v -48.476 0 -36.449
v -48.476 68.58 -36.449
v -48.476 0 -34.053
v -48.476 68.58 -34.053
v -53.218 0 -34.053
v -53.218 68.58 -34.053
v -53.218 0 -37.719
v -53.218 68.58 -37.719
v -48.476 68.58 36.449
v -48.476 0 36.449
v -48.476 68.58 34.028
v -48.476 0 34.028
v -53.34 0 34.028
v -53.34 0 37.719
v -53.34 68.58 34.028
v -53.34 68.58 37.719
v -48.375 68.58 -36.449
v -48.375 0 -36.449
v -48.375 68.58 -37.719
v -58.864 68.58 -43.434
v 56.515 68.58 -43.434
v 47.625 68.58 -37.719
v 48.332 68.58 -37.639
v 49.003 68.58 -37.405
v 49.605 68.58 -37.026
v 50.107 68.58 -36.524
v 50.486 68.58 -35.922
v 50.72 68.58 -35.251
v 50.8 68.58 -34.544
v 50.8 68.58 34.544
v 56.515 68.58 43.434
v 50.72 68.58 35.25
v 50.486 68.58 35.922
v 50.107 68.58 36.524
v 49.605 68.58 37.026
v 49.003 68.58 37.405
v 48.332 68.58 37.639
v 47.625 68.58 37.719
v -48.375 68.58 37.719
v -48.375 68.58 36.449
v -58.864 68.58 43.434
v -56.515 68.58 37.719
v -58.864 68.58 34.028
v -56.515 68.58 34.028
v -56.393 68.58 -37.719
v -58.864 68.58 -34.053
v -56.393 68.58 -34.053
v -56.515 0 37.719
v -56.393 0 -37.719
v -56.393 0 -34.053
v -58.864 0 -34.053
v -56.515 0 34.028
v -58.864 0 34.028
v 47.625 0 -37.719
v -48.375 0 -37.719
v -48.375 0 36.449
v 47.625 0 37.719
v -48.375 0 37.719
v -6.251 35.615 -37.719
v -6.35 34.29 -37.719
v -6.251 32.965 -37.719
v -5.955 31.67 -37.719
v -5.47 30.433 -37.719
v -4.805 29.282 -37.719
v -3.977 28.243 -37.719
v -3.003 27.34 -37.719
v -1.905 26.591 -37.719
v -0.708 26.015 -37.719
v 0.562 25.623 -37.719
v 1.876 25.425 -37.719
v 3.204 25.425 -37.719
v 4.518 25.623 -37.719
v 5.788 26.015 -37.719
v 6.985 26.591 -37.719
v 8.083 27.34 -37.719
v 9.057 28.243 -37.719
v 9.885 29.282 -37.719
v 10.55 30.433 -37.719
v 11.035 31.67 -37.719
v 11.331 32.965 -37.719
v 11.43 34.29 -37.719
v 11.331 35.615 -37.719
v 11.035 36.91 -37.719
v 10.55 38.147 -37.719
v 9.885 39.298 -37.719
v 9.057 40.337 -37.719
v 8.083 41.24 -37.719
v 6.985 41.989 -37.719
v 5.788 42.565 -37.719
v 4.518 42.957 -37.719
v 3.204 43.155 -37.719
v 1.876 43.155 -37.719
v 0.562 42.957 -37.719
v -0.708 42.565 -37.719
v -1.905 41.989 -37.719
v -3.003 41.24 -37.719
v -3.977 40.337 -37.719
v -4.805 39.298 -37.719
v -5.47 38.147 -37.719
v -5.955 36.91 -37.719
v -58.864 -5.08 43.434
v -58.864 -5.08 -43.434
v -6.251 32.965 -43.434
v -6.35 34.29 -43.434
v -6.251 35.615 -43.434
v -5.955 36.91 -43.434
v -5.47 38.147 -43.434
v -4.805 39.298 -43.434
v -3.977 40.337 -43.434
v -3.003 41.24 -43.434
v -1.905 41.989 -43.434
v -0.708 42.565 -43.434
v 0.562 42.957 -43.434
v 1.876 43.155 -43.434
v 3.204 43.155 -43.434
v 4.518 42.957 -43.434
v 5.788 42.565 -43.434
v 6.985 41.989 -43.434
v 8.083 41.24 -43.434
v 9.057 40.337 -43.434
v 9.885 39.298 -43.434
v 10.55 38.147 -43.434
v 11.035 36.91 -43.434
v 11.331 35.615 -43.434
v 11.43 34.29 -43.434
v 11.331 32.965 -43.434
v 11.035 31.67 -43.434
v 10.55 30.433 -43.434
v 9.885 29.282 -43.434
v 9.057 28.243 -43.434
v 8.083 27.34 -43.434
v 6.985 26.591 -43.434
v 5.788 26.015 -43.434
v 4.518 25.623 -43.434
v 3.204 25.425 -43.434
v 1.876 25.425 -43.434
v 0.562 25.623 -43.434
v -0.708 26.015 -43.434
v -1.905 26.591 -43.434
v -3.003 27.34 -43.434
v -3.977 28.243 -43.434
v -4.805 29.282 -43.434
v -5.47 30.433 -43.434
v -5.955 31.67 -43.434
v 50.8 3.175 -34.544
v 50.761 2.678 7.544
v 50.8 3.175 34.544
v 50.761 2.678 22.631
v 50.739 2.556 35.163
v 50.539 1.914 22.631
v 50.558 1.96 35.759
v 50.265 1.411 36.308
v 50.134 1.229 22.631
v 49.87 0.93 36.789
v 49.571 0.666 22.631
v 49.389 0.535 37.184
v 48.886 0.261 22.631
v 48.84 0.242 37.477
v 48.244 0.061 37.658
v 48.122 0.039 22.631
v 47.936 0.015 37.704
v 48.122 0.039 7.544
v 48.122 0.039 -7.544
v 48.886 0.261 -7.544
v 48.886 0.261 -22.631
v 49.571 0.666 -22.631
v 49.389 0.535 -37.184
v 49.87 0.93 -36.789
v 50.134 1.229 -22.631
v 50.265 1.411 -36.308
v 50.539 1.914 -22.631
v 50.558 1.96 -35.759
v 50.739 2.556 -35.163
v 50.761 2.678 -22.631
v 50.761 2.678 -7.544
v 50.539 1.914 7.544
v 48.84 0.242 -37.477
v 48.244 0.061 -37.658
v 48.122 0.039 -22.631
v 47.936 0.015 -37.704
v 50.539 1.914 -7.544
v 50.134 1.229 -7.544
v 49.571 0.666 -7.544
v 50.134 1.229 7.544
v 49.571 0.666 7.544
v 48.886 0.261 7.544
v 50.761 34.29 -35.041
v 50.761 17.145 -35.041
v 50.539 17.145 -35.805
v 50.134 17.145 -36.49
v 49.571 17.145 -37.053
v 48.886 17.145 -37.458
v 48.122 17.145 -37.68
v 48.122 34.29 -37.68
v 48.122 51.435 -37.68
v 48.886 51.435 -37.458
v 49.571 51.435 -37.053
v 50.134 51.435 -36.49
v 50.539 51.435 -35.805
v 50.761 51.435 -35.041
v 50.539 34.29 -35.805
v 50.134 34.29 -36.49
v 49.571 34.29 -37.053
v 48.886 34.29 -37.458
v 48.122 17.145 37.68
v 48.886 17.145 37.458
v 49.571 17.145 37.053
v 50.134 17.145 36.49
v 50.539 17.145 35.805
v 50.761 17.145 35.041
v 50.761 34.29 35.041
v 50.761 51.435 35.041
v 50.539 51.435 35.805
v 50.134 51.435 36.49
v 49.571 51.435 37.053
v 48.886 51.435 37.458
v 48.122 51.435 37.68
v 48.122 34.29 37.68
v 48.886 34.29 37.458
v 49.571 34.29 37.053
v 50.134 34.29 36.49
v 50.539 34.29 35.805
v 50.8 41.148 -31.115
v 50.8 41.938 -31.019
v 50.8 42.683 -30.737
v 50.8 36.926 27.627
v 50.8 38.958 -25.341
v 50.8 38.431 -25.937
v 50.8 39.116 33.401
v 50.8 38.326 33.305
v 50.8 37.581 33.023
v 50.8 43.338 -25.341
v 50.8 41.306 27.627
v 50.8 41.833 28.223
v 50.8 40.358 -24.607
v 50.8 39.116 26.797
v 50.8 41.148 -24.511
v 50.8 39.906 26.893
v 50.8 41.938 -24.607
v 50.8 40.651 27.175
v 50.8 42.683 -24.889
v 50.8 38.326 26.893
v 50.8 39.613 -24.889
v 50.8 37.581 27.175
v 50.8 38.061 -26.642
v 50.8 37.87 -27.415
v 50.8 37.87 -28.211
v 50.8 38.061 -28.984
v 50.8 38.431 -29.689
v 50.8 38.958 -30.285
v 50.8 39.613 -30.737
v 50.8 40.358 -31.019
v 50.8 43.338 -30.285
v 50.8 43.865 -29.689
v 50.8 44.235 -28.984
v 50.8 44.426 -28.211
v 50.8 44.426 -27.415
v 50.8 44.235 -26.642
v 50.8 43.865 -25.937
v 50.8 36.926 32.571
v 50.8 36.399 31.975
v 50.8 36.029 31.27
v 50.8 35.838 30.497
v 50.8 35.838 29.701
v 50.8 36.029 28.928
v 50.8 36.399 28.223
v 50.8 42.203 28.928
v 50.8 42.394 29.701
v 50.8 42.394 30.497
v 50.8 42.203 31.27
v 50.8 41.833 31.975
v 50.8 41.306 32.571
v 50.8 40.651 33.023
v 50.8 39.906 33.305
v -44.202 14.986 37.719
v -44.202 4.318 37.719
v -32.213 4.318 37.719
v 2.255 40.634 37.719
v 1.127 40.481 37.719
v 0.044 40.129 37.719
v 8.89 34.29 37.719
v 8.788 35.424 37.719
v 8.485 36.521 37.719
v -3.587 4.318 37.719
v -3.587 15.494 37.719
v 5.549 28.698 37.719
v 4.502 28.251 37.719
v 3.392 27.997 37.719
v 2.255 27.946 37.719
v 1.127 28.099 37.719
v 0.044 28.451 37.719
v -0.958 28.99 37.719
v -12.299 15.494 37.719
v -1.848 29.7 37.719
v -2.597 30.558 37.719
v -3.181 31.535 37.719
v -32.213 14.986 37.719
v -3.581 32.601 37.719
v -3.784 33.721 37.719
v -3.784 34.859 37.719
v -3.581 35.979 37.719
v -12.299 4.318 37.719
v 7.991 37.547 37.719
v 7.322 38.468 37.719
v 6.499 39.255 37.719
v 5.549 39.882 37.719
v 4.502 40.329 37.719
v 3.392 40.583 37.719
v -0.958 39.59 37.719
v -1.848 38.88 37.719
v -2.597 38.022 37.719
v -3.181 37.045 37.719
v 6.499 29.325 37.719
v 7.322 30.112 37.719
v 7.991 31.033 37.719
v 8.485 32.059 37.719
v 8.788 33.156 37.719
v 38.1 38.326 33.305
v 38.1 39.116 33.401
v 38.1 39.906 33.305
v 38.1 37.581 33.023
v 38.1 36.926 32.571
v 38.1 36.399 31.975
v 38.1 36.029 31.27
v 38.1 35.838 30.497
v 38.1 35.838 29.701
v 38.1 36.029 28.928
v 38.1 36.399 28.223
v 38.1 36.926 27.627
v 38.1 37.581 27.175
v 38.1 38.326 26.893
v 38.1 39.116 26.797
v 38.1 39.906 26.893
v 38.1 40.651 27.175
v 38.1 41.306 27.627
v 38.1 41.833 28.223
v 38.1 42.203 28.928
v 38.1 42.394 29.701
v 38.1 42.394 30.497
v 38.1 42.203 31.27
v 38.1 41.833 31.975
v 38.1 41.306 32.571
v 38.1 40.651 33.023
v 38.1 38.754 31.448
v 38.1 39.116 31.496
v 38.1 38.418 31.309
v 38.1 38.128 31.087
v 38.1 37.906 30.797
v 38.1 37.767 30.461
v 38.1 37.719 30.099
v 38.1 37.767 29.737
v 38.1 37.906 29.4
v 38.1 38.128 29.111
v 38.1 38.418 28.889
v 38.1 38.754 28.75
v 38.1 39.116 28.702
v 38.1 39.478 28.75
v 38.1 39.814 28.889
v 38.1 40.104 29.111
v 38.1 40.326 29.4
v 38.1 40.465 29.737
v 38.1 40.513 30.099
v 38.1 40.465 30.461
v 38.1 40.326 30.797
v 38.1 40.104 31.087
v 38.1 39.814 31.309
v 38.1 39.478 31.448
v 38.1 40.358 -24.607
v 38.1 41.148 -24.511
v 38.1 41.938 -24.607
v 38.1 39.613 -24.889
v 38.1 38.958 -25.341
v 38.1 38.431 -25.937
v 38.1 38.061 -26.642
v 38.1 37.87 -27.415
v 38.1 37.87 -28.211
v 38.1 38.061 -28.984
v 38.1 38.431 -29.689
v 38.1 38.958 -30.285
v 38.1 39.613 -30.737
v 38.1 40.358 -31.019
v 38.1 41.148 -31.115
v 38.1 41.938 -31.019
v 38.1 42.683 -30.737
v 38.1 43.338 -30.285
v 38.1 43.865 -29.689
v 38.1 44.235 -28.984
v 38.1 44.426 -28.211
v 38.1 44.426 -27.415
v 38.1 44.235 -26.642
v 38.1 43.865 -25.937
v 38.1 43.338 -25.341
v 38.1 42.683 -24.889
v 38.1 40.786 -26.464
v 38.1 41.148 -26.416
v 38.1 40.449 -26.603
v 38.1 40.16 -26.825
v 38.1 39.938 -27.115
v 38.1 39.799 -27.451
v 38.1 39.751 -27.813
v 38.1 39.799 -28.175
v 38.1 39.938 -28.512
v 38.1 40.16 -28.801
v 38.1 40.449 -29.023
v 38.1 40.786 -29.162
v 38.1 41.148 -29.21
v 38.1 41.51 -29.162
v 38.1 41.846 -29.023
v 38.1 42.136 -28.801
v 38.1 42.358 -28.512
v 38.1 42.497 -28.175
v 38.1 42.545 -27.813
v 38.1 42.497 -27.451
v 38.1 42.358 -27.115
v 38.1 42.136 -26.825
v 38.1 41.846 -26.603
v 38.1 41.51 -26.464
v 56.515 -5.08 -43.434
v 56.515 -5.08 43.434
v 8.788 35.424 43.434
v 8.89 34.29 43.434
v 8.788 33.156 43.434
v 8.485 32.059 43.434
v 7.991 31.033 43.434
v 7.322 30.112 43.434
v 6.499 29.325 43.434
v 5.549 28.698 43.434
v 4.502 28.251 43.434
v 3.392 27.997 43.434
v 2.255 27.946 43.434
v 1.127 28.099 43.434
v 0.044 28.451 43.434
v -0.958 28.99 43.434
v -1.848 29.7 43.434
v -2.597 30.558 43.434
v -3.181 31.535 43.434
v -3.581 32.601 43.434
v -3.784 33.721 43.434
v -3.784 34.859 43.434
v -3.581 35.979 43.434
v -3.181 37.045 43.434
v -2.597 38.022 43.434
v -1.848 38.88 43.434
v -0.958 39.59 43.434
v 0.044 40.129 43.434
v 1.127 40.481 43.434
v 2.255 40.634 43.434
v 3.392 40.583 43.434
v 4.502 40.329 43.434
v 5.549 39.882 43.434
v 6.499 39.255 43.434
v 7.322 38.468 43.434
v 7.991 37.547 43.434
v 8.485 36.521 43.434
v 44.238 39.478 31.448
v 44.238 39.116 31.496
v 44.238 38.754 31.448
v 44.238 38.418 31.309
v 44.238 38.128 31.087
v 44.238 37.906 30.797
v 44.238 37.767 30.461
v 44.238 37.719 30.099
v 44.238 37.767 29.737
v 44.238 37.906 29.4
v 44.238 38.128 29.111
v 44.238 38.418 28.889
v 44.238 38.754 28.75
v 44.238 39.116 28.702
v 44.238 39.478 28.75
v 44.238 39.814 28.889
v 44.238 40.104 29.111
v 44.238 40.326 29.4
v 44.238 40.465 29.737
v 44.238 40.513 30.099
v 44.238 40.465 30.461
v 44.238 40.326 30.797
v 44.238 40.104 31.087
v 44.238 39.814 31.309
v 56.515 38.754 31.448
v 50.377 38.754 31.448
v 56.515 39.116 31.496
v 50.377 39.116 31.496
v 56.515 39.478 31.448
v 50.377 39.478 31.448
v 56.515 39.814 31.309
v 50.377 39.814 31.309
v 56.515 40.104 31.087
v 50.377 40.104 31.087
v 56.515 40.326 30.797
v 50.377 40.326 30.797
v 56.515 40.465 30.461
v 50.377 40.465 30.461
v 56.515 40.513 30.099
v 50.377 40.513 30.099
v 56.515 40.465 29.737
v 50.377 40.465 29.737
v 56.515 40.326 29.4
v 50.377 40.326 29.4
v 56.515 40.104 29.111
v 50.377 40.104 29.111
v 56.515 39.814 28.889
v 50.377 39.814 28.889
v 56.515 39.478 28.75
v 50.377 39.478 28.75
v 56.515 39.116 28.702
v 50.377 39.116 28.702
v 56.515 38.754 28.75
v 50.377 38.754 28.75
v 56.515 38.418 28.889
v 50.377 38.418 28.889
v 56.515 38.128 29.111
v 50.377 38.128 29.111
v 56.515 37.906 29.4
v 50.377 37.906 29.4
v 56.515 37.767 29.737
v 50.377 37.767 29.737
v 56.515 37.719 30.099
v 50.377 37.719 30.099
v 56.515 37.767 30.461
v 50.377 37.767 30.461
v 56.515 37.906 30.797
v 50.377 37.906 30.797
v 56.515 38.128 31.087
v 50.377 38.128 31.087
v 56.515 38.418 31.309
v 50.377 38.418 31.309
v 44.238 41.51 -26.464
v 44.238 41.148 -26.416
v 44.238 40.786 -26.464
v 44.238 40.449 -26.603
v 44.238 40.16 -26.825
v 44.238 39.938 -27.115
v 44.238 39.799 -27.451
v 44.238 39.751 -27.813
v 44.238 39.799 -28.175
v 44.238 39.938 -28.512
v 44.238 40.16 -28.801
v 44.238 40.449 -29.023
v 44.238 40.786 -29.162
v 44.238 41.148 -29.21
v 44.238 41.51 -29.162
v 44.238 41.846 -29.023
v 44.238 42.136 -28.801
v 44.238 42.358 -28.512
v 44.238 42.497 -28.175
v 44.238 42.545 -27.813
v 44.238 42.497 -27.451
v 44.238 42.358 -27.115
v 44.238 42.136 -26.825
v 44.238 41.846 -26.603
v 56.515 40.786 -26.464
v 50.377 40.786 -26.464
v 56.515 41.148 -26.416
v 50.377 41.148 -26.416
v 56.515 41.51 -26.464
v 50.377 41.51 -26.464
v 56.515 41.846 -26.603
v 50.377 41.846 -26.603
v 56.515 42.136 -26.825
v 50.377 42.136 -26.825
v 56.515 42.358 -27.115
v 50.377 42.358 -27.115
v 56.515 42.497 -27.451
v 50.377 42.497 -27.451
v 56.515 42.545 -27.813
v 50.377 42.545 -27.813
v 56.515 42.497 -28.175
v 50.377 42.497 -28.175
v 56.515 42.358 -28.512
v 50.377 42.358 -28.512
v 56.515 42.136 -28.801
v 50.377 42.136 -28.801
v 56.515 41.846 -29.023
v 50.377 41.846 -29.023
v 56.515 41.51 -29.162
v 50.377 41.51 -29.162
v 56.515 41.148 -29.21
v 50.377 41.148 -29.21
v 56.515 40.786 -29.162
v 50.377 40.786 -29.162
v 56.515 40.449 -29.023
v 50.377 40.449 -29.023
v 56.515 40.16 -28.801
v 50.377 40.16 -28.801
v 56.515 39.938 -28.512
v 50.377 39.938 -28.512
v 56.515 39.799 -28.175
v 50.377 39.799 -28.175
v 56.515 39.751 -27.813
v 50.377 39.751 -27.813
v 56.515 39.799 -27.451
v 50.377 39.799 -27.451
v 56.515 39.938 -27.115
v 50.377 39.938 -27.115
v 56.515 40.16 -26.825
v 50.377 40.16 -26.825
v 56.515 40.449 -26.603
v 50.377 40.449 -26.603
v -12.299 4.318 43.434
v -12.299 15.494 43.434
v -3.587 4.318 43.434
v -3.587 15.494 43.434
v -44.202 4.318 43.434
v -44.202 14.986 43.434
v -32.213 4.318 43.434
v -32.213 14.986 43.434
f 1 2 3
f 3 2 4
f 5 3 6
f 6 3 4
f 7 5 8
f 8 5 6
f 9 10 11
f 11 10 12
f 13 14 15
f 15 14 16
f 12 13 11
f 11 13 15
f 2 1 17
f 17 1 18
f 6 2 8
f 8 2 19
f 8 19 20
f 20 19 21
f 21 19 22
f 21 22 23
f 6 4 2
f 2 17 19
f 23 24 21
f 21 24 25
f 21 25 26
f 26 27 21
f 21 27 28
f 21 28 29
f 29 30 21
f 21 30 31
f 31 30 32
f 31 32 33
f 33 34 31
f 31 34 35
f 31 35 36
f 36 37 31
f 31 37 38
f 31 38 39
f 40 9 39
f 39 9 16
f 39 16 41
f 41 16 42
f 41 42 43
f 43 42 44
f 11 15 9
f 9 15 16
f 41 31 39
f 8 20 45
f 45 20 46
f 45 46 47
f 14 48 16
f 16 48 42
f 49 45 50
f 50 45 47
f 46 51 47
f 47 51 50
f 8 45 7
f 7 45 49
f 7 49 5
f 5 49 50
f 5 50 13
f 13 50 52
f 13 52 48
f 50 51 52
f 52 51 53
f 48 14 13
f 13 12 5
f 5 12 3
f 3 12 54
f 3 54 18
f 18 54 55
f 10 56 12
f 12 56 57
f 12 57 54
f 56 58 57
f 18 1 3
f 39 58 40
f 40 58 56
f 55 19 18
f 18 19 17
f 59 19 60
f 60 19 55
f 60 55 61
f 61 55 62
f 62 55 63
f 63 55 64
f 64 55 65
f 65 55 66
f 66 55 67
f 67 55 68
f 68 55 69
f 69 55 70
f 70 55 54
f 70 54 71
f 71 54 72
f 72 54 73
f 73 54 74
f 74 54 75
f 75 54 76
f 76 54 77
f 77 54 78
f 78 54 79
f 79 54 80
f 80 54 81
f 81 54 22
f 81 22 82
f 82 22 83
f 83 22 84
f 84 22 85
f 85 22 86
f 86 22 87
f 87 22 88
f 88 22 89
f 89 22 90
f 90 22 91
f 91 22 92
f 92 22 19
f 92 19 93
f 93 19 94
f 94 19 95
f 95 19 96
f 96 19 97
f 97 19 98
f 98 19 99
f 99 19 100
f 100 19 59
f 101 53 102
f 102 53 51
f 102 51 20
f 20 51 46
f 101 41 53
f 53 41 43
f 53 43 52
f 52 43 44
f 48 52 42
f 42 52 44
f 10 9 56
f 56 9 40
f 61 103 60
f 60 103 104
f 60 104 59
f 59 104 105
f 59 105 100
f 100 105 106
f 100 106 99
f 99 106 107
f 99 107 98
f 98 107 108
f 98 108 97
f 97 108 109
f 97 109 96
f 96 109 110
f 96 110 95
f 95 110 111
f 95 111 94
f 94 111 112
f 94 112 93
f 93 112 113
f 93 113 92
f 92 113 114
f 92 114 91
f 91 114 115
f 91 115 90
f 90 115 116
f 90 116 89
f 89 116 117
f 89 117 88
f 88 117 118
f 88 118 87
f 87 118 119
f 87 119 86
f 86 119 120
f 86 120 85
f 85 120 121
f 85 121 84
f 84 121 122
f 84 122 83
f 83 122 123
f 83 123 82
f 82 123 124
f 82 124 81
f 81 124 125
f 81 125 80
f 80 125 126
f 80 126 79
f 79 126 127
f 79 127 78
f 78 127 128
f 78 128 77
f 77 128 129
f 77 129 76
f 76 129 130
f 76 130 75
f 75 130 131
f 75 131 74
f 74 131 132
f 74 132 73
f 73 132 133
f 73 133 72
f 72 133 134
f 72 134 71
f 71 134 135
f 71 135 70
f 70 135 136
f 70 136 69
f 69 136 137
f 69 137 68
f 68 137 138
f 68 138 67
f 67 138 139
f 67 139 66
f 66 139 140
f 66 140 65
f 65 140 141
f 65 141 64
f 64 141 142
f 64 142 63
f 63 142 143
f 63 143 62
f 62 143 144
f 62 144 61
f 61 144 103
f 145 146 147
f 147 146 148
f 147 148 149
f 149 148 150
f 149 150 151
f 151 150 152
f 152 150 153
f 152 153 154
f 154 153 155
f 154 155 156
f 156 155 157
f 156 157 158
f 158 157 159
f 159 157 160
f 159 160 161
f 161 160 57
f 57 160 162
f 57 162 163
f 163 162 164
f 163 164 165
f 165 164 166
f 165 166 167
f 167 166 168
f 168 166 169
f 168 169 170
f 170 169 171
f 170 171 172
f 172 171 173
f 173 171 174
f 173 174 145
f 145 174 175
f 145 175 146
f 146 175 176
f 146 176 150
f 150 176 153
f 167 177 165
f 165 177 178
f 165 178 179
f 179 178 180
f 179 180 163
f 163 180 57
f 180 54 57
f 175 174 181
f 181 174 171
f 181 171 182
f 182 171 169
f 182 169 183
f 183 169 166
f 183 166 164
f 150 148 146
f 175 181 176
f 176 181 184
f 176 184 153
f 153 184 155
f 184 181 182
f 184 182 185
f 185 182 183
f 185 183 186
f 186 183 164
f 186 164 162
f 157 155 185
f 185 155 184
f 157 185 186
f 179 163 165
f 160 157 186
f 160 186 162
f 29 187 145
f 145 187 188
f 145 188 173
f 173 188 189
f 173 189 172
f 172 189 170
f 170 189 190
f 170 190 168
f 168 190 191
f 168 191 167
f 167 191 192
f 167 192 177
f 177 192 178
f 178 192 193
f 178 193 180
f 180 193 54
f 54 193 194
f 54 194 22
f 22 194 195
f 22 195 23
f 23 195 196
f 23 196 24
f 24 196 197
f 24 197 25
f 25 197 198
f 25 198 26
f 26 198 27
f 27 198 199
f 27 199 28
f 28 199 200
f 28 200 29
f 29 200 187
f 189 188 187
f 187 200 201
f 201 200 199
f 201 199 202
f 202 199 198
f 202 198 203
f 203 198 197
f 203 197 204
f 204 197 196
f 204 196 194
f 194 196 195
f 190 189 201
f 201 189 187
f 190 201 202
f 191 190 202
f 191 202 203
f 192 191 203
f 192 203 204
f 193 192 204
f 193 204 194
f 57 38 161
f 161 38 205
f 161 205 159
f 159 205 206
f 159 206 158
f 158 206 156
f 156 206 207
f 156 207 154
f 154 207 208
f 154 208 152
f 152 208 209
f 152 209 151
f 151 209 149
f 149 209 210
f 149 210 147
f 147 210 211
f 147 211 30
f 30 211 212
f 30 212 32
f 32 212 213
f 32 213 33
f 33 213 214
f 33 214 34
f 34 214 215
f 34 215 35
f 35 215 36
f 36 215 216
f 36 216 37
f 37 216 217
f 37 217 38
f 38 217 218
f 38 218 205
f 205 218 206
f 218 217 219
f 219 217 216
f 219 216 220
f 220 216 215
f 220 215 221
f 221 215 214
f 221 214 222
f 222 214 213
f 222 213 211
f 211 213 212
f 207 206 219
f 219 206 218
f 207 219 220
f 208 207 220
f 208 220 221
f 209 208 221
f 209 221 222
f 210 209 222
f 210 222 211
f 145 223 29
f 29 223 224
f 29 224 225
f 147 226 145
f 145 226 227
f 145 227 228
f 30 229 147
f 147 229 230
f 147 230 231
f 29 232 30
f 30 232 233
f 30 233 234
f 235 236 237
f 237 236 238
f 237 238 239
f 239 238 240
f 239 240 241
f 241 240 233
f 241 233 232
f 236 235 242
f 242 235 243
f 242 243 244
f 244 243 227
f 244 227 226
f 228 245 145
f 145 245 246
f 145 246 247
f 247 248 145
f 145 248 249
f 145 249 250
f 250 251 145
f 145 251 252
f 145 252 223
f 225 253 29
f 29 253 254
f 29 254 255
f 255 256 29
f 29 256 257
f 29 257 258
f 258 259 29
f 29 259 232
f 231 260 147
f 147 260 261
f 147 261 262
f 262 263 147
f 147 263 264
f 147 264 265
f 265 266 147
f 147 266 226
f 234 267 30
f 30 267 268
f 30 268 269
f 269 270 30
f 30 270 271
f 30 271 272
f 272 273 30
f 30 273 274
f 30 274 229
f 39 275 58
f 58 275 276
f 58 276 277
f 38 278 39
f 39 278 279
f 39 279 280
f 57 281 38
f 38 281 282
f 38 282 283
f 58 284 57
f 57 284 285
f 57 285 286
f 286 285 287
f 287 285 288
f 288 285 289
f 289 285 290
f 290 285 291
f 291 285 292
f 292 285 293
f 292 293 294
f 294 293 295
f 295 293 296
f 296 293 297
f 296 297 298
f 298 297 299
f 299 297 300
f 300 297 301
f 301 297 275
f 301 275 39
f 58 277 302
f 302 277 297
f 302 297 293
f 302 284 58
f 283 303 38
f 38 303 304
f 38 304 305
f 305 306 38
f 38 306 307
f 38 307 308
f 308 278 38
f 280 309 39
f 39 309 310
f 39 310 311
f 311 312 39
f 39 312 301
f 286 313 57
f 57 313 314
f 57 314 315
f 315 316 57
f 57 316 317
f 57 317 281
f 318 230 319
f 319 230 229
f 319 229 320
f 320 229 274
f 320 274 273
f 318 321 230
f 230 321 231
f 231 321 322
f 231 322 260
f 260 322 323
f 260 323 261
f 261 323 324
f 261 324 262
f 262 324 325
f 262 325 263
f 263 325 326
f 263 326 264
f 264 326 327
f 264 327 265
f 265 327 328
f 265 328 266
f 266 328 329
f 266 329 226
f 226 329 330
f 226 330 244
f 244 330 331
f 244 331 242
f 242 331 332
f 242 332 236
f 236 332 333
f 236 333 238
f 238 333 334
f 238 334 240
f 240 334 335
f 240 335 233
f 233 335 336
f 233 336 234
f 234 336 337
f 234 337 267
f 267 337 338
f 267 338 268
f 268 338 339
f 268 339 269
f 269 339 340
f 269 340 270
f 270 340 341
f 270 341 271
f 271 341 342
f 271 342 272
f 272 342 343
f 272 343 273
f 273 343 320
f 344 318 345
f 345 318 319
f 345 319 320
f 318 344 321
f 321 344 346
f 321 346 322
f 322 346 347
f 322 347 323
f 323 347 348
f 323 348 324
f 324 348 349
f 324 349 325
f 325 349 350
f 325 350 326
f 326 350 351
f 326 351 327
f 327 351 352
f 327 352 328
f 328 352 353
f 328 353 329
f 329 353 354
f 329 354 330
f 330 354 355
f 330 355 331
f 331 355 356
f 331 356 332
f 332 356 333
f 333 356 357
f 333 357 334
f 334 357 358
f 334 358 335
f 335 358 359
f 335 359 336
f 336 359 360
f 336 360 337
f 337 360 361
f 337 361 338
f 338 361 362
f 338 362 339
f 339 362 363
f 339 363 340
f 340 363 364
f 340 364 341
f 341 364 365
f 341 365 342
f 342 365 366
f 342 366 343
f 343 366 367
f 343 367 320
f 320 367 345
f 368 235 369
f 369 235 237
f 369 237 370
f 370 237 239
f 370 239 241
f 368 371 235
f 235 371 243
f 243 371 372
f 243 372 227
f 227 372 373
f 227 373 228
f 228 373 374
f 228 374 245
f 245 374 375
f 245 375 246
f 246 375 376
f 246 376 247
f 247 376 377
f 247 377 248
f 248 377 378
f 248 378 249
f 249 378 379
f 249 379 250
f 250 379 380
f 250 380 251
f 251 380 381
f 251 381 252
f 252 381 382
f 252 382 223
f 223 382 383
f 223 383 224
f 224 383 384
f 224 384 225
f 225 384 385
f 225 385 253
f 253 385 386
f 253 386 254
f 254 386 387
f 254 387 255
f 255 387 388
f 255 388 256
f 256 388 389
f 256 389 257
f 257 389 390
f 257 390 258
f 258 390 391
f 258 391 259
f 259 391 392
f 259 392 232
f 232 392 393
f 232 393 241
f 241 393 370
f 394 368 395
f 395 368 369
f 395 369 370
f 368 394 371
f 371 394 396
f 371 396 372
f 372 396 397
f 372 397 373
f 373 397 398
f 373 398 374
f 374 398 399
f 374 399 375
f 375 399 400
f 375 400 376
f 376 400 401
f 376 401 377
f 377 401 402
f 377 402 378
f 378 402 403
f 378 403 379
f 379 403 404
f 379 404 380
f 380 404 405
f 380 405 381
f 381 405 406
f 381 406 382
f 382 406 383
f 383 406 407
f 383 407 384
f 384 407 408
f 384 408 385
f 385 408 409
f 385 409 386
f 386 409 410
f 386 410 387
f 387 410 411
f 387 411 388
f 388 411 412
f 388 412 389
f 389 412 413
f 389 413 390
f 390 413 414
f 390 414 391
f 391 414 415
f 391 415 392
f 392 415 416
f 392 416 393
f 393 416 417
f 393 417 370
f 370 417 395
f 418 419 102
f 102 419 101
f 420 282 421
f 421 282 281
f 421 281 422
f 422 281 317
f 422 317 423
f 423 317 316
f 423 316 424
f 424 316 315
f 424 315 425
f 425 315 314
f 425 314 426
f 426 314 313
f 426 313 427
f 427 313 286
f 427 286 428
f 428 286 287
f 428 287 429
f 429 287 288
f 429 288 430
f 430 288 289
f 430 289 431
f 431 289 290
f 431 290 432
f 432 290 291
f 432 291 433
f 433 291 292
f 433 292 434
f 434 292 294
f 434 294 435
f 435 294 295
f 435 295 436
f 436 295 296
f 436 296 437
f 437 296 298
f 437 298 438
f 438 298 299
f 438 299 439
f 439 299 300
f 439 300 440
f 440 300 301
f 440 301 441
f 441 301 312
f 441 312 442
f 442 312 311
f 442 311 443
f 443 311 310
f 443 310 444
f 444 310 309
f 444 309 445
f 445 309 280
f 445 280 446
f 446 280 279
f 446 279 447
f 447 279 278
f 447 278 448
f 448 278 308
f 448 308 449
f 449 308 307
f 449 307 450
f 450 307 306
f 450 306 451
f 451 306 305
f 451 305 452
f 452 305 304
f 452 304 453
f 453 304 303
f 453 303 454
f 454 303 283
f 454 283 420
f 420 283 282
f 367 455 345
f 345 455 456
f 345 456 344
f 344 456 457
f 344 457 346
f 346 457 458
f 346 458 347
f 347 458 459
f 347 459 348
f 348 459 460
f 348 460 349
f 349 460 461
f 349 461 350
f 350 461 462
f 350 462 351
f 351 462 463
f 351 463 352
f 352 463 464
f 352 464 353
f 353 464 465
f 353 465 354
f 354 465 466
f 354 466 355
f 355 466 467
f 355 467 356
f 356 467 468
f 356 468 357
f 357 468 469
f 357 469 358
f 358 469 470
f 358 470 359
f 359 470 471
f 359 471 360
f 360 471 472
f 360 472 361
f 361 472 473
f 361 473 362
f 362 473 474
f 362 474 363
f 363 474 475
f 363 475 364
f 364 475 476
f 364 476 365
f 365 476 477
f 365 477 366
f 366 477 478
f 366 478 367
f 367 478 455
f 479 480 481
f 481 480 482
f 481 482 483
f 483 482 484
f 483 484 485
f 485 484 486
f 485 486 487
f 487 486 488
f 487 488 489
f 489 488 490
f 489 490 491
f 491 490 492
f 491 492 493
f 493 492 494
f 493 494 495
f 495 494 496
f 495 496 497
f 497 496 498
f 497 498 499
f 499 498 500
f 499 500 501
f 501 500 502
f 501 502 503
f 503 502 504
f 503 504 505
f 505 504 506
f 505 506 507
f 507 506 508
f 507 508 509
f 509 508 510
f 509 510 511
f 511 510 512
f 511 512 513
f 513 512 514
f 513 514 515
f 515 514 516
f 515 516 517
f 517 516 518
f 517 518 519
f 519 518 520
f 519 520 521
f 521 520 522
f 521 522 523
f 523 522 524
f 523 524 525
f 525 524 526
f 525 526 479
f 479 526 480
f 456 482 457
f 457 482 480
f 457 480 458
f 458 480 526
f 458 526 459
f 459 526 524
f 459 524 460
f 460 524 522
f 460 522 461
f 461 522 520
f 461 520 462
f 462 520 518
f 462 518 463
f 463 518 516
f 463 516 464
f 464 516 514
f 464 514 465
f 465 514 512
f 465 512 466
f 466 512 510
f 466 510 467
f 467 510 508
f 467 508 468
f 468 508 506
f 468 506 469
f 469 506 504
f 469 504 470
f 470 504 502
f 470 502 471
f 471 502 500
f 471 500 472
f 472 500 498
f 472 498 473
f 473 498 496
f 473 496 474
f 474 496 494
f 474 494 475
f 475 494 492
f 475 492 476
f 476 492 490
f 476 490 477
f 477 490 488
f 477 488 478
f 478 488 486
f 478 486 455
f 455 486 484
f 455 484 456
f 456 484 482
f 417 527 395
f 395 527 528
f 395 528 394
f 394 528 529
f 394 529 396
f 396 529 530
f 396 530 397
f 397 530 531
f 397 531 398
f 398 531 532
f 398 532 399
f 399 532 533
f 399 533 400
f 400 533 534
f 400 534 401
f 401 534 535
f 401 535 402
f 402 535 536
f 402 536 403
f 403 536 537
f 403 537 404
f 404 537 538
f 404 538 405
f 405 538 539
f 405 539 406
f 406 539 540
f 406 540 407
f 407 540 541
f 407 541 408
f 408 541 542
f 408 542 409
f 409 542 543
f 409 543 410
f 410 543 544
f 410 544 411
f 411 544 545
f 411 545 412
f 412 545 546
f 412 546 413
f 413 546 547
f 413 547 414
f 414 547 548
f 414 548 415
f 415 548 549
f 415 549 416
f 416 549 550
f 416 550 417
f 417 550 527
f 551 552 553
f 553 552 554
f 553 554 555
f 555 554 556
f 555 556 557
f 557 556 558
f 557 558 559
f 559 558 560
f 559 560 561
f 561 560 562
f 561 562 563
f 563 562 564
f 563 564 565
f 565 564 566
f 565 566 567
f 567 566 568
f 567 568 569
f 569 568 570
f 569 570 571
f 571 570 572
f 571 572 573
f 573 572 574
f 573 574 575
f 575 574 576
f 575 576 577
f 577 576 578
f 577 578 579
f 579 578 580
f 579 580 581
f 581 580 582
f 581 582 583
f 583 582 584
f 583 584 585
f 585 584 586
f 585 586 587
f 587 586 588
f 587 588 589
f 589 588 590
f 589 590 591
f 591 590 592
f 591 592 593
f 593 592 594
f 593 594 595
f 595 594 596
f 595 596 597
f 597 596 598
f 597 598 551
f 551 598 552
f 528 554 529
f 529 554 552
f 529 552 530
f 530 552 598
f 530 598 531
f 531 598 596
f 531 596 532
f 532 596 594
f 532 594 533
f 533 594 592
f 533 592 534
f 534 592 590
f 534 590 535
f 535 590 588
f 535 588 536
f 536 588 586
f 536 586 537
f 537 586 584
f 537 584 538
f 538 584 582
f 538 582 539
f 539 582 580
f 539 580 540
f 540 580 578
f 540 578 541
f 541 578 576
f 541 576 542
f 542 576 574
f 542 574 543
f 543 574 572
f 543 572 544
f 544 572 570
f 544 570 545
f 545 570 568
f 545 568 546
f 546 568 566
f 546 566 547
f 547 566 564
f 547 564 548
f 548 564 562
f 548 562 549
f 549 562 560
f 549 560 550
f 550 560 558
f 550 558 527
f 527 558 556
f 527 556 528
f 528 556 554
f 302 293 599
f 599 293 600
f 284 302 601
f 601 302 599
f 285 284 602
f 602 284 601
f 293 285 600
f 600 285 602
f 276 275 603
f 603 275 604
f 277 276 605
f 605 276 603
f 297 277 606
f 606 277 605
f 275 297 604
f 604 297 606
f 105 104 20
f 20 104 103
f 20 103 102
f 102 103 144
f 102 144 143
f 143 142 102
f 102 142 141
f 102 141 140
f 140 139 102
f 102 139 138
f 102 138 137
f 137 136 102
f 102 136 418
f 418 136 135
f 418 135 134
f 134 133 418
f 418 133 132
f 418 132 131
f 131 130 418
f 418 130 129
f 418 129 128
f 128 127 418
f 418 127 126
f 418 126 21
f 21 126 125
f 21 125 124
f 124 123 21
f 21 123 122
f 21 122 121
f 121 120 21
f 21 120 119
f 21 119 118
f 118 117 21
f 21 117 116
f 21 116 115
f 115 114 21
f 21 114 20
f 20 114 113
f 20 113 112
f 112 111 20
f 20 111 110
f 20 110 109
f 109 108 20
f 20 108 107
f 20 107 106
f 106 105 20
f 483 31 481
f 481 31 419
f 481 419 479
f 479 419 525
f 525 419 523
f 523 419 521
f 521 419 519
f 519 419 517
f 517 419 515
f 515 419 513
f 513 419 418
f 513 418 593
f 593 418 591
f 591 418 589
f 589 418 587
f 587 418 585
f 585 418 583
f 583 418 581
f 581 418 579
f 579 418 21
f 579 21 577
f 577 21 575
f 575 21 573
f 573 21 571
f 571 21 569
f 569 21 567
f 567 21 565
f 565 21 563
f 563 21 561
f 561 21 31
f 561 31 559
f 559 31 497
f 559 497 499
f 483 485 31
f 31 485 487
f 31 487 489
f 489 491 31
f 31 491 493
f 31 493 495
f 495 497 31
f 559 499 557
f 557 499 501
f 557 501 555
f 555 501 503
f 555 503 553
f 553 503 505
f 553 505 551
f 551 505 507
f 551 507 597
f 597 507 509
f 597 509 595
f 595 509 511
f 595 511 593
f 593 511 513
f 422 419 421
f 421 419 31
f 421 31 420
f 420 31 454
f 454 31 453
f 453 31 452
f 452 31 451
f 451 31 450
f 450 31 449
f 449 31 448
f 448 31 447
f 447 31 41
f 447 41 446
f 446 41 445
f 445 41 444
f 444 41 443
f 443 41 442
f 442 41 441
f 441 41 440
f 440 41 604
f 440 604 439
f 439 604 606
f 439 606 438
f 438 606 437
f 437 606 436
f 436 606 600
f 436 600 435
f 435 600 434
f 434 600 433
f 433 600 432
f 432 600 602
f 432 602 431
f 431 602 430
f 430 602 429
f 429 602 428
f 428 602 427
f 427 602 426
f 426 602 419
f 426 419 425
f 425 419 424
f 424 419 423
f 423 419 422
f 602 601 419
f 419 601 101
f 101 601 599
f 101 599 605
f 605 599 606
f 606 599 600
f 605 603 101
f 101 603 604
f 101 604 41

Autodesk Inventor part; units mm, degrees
ref_plane "YZ Plane" through (0, 0, 0) normal (1, 0, 0) x (0, 1, 0)
ref_plane "XZ Plane" through (0, 0, 0) normal (0, 1, 0) x (-1, 0, 0)
ref_plane "XY Plane" through (0, 0, 0) normal (0, 0, 1) x (1, 0, 0)
sketch "Sketch1" plane through (0, 0, 0) normal (0, 1, 0) x (-1, 0, 0)
  line L0 (50.8, 37.719) -> (-50.8, 37.719)
  line L1 (-50.8, 37.719) -> (-50.8, -37.719)
  line L2 (-50.8, -37.719) -> (50.8, -37.719)
  line L3 (50.8, -37.719) -> (50.8, 37.719)
  line L4 (50.8, 37.719) -> (-50.8, -37.719) construction
  line L5 (-50.8, 37.719) -> (50.8, -37.719) construction
  line L6 (56.515, 43.434) -> (-56.515, 43.434)
  line L7 (-56.515, 43.434) -> (-56.515, -43.434)
  line L8 (-56.515, -43.434) -> (56.515, -43.434)
  line L9 (56.515, -43.434) -> (56.515, 43.434)
  line L10 (56.515, 43.434) -> (-56.515, -43.434) construction
  line L11 (-56.515, 43.434) -> (56.515, -43.434) construction
  point P0 (0, 0)
  dimension "d0" = 101.6
  dimension "d1" = 75.438
  dimension "d2" = 113.03
  dimension "d3" = 86.868
extrude "Extrusion1" add sketch "Sketch1" along normal blind 68.58
sketch "Sketch2" plane through (0, 0, 0) normal (0, -1, 0) x (1, 0, 0)
  line L0 (-50.8, 37.719) -> (50.8, 37.719) projected
  line L1 (-50.8, 37.719) -> (-41.656, 37.719)
  line L2 (-50.8, 37.719) -> (-50.8, -37.719) projected
  line L3 (-41.656, 37.719) -> (-50.8, 37.719)
  line L4 (-50.8, 37.719) -> (-41.656, 37.719)
  point P0 (0, 0)
  dimension "d6" = 9.144
sketch "Sketch3" plane through (-56.515, 0, 43.434) normal (0, 0, 1) x (1, 0, 0)
  line L0 (12.3133, 0) -> (12.3133, 10.668)
  line L1 (12.3133, 10.668) -> (12.3133, 14.986)
  line L2 (12.3133, 14.986) -> (24.3021, 14.986)
  line L3 (24.3021, 14.986) -> (24.3021, 4.318)
  line L4 (24.3021, 4.318) -> (12.3133, 4.318)
  line L5 (0, 0) -> (113.03, 0) projected
  line L6 (24.3021, 4.318) -> (44.2157, 4.318)
  line L7 (44.2157, 4.318) -> (44.2157, 15.494)
  line L8 (44.2157, 15.494) -> (52.9279, 15.494)
  line L9 (52.9279, 15.494) -> (52.9279, 4.318)
  line L10 (52.9279, 4.318) -> (44.2157, 4.318)
  point P0 (56.515, 0)
  dimension "d7" = 10.668
  dimension "d8" = 4.318
  dimension "d9" = 11.9888
  dimension "d10" = 10.668
  dimension "d11" = 19.9136
  dimension "d12" = 11.176
  dimension "d13" = 8.7122
extrude "Extrusion2" cut sketch "Sketch3" against normal blind 68.58
sketch "Sketch4" plane through (50.8, 0, 37.719) normal (-1, 0, 0) x (0, 0, 1)
  line L0 (0, 0) -> (-75.438, 0) projected
  line L1 (-75.438, 0) -> (-34.29, 0)
  line L2 (-34.29, 0) -> (-75.438, 0)
  line L3 (-75.438, 0) -> (-75.438, 68.58) projected
  line L4 (-75.438, 0) -> (-75.438, 41.148)
  line L5 (-75.438, 41.148) -> (-65.532, 41.148)
  line L6 (-65.532, 41.148) -> (-75.438, 41.148)
  line L7 (0, 0) -> (0, 68.58) projected
  line L8 (0, 68.58) -> (0, 39.116)
  line L9 (0, 39.116) -> (0, 46.736)
  line L10 (0, 46.736) -> (0, 39.116)
  line L11 (0, 39.116) -> (-7.62, 39.116)
  line L12 (-7.62, 39.116) -> (0, 39.116)
  circle A0 centre (-7.62, 39.116) radius 1.397
  circle A1 centre (-65.532, 41.148) radius 1.397
  point P0 (-37.719, 0)
  dimension "d16" = 41.148
  dimension "d17" = 41.148
  dimension "d18" = 9.906
  dimension "d19" = 29.464
  dimension "d20" = 7.62
  dimension "d21" = 7.62
  dimension "d22" = 2.794
  dimension "d23" = 2.794
extrude "Extrusion3" cut sketch "Sketch4" against normal blind 68.58
sketch "Sketch5" plane through (-56.515, 0, 43.434) normal (0, 0, 1) x (1, 0, 0)
  point P0 (56.515, 0)
sketch "Sketch6" plane through (-56.515, 0, 43.434) normal (0, 0, 1) x (1, 0, 0)
  line L0 (0, 0) -> (0, 68.58) projected
  line L1 (113.03, 0) -> (113.03, 68.58) projected
  line L2 (0, 68.58) -> (113.03, 0)
  line L3 (113.03, 0) -> (0, 68.58)
  line L4 (0, 68.58) -> (113.03, 68.58) projected
  line L5 (113.03, 68.58) -> (5.08, 0)
  line L6 (5.08, 0) -> (113.03, 68.58)
  circle A0 centre (59.055, 34.29) radius 6.35
  point P0 (56.515, 0)
  dimension "d26" = 12.7
extrude "Extrusion4" cut sketch "Sketch6" against normal blind 109.855 contours A0 L5 L2 | L2 L5 A0 | L5 L2 A0 | L5 A0 L2
sketch "Sketch7" plane through (0, 0, 0) normal (0, -1, 0) x (1, 0, 0)
  line L0 (-56.515, 43.434) -> (56.515, 43.434) projected
  line L1 (56.515, 43.434) -> (56.515, -43.434) projected
  line L2 (-56.515, 43.434) -> (56.515, 43.434)
  line L3 (56.515, 43.434) -> (56.515, -43.434)
  line L4 (56.515, -43.434) -> (-56.515, -43.434)
  line L5 (-56.515, -43.434) -> (-56.515, 43.434)
  point P0 (0, 0)
extrude "Extrusion5" add sketch "Sketch7" along normal blind 5.08
sketch "Sketch9" plane through (0, 68.58, 0) normal (0, 1, 0) x (1, 0, 0)
  point P0 (0, 0)
sketch "Sketch10" plane through (50.8, 68.58, -37.719) normal (-1, 0, 0) x (0, 0, 1)
  circle A0 centre (67.818, -29.464) radius 1.397 projected
  circle A1 centre (67.818, -29.464) radius 3.302
  circle A2 centre (9.906, -27.432) radius 1.397 projected
  circle A3 centre (9.906, -27.432) radius 3.302
  point P0 (37.719, -68.58)
  dimension "d36" = 6.604
  dimension "d37" = 6.604
extrude "Extrusion7" add sketch "Sketch10" along normal blind 12.7
sketch "Sketch11" plane through (-56.515, 68.58, -43.434) normal (-1, 0, 0) x (0, 0, 1)
  line L0 (5.715, -68.58) -> (5.715, 0) projected
  line L1 (81.153, -68.58) -> (81.153, 0) projected
  line L2 (5.715, 0) -> (81.153, 0)
  line L3 (81.153, 0) -> (81.153, -68.58)
  line L4 (81.153, -68.58) -> (5.715, -68.58)
  line L5 (5.715, -68.58) -> (5.715, 0)
  point P0 (43.434, -68.58)
extrude "Extrusion8" cut sketch "Sketch11" against normal blind 12.7
fillet "Fillet2" radius 3.175 3 edges at (50.8, 34.29, -37.719) (50.8, 0, 0) (50.8, 34.29, 37.719)
sketch "Sketch12" plane through (56.515, 68.58, -43.434) normal (0, 0, -1) x (-1, 0, 0)
  circle A0 centre (53.975, -34.29) radius 4.445
  circle A1 centre (53.975, -34.29) radius 8.89
  circle A2 centre (53.975, -34.29) radius 6.35 projected
  point P0 (56.515, -68.58)
  dimension "d43" = 8.89
  dimension "d44" = 17.78
extrude "Extrusion9" cut sketch "Sketch12" against normal blind 12.7 contours A1
sketch "Sketch13" plane through (0, 0, 0) normal (0, 1, 0) x (1, 0, 0)
  line L0 (-56.515, 37.719) -> (47.625, 37.719) projected
  line L1 (-50.7189, 37.719) -> (-49.9627, 37.719)
  line L2 (-49.9627, 37.719) -> (-49.9627, 36.449)
  line L3 (-49.9627, 36.449) -> (-50.7189, 36.449)
  line L4 (-50.7189, 36.449) -> (-50.7189, 37.719)
  line L5 (-56.515, -37.719) -> (47.625, -37.719) projected
  line L6 (-50.7189, -37.719) -> (-49.9627, -37.719)
  line L7 (-49.9627, -37.719) -> (-49.9627, -36.449)
  line L8 (-49.9627, -36.449) -> (-50.7189, -36.449)
  line L9 (-50.7189, -36.449) -> (-50.7189, -37.719)
  point P0 (0, 0)
  dimension "d47" = 1.27
  dimension "d48" = 1.27
extrude "Extrusion10" add sketch "Sketch13" along normal blind 68.58
sketch "Sketch14" plane through (-56.515, -5.08, -43.434) normal (-1, 0, 0) x (0, 0, 1)
  point P0 (43.434, 5.08)
sketch "Sketch15" plane through (-56.515, -5.08, -43.434) normal (-1, 0, 0) x (0, 0, 1)
  line L0 (0, 73.66) -> (5.715, 73.66) projected
  line L1 (86.868, 0) -> (0, 0) projected
  line L2 (0, 73.66) -> (4.5789, 73.66)
  line L3 (4.5789, 73.66) -> (4.5789, 0)
  line L4 (4.5789, 0) -> (0, 0)
  line L5 (0, 0) -> (0, 73.66)
  line L6 (81.153, 73.66) -> (86.868, 73.66) projected
  line L7 (86.868, 73.66) -> (77.4615, 73.66)
  line L8 (77.4615, 73.66) -> (77.4615, 0)
  line L9 (77.4615, 0) -> (86.868, 0)
  line L10 (86.868, 0) -> (86.868, 73.66)
  line L11 (4.5789, 0) -> (77.4615, 0)
  line L12 (77.4615, 0) -> (77.4615, 5.08)
  line L13 (77.4615, 5.08) -> (4.5789, 5.08)
  line L14 (4.5789, 5.08) -> (4.5789, 0)
  point P0 (43.434, 5.08)
extrude "Extrusion11" add sketch "Sketch15" along normal blind 0.762
sketch "Sketch16" plane through (-57.277, -5.08, -43.434) normal (-1, 0, 0) x (0, 0, 1)
  line L0 (0, 0) -> (86.868, 0) projected
  line L1 (0, 73.66) -> (4.5551, 73.66)
  line L2 (4.5551, 73.66) -> (4.5551, 0)
  line L3 (4.5551, 0) -> (0, 0)
  line L4 (0, 0) -> (0, 73.66)
  line L5 (86.868, 73.66) -> (77.4615, 73.66) projected
  line L6 (86.868, 0) -> (86.868, 73.66) projected
  line L7 (77.4615, 73.66) -> (86.868, 73.66)
  line L8 (86.868, 73.66) -> (86.868, 0)
  line L9 (86.868, 0) -> (77.4615, 0)
  line L10 (77.4615, 0) -> (77.4615, 73.66)
  line L11 (79.883, 5.08) -> (81.153, 5.08) projected
  line L12 (79.883, 5.08) -> (4.5551, 5.08)
  line L13 (4.5551, 5.08) -> (4.5551, 0)
  line L14 (4.5551, 0) -> (79.883, 0)
  line L15 (79.883, 0) -> (79.883, 5.08)
  point P0 (43.434, 5.08)
extrude "Extrusion12" add sketch "Sketch16" along normal blind 1.5875
sketch "Sketch17" plane through (-49.9627, 0, 36.449) normal (1, 0, 0) x (0, 0, -1)
  line L0 (-1.27, 68.58) -> (0, 68.58) projected
  line L1 (0, 68.58) -> (-1.27, 68.58)
  line L2 (-1.27, 68.58) -> (-1.27, 0)
  line L3 (-1.27, 0) -> (0, 0)
  line L4 (0, 0) -> (0, 68.58)
  line L5 (74.168, 0) -> (72.898, 0) projected
  line L6 (72.898, 0) -> (72.898, 68.58) projected
  line L7 (74.168, 0) -> (72.898, 0)
  line L8 (72.898, 0) -> (72.898, 68.58)
  line L9 (72.898, 68.58) -> (74.168, 68.58)
  line L10 (74.168, 68.58) -> (74.168, 0)
  point P0 (36.449, 0)
extrude "Extrusion13" add sketch "Sketch17" along normal blind 1.5875
sketch "Sketch18" plane through (-50.7189, 0, -36.449) normal (-1, 0, 0) x (0, 0, 1)
  point P0 (36.449, 0)
sketch "Sketch19" plane through (-57.277, 0, -38.8789) normal (0, 0, 1) x (1, 0, 0)
  line L0 (-1.5875, 68.58) -> (-1.5875, -5.08) projected
  line L1 (-1.5875, 68.58) -> (0.8838, 68.58)
  line L2 (0.8838, 68.58) -> (0.8838, 0)
  line L3 (0.8838, 0) -> (-1.5875, 0)
  line L4 (-1.5875, 0) -> (-1.5875, 68.58)
  point P0 (57.277, 0)
extrude "Extrusion14" add sketch "Sketch19" along normal blind 4.826
sketch "Sketch20" plane through (0, 68.58, 0) normal (0, 1, 0) x (1, 0, 0)
  point P0 (0, 0)
sketch "Sketch21" plane through (0, 0, 0) normal (0, 1, 0) x (1, 0, 0)
  line L0 (-56.515, -37.719) -> (-56.515, -34.0275) projected
  line L1 (-56.515, -37.719) -> (-53.34, -37.719)
  line L2 (-50.7189, -37.719) -> (-56.515, -37.719) projected
  line L3 (-53.34, -37.719) -> (-56.515, -37.719)
  line L4 (-56.3932, 37.719) -> (-56.3932, 34.0529) projected
  line L5 (-56.3932, 37.719) -> (-53.2182, 37.719)
  line L6 (-56.3932, 37.719) -> (-50.7189, 37.719) projected
  line L7 (-53.2182, 37.719) -> (-56.3932, 37.719)
  line L8 (-53.2182, 37.719) -> (-48.4756, 37.719)
  line L9 (-48.4756, 37.719) -> (-48.4756, 34.0529)
  line L10 (-48.4756, 34.0529) -> (-53.2182, 34.0529)
  line L11 (-53.2182, 34.0529) -> (-53.2182, 37.719)
  line L12 (-53.34, -37.719) -> (-48.4756, -37.719)
  line L13 (-48.4756, -37.719) -> (-48.4756, -34.0275)
  line L14 (-48.4756, -34.0275) -> (-53.34, -34.0275)
  line L15 (-53.34, -34.0275) -> (-53.34, -37.719)
  point P0 (0, 0)
  dimension "d59" = 3.175
  dimension "d60" = 3.175
extrude "Extrusion15" add sketch "Sketch21" along normal blind 68.58
properties part number "Boxpt1"
